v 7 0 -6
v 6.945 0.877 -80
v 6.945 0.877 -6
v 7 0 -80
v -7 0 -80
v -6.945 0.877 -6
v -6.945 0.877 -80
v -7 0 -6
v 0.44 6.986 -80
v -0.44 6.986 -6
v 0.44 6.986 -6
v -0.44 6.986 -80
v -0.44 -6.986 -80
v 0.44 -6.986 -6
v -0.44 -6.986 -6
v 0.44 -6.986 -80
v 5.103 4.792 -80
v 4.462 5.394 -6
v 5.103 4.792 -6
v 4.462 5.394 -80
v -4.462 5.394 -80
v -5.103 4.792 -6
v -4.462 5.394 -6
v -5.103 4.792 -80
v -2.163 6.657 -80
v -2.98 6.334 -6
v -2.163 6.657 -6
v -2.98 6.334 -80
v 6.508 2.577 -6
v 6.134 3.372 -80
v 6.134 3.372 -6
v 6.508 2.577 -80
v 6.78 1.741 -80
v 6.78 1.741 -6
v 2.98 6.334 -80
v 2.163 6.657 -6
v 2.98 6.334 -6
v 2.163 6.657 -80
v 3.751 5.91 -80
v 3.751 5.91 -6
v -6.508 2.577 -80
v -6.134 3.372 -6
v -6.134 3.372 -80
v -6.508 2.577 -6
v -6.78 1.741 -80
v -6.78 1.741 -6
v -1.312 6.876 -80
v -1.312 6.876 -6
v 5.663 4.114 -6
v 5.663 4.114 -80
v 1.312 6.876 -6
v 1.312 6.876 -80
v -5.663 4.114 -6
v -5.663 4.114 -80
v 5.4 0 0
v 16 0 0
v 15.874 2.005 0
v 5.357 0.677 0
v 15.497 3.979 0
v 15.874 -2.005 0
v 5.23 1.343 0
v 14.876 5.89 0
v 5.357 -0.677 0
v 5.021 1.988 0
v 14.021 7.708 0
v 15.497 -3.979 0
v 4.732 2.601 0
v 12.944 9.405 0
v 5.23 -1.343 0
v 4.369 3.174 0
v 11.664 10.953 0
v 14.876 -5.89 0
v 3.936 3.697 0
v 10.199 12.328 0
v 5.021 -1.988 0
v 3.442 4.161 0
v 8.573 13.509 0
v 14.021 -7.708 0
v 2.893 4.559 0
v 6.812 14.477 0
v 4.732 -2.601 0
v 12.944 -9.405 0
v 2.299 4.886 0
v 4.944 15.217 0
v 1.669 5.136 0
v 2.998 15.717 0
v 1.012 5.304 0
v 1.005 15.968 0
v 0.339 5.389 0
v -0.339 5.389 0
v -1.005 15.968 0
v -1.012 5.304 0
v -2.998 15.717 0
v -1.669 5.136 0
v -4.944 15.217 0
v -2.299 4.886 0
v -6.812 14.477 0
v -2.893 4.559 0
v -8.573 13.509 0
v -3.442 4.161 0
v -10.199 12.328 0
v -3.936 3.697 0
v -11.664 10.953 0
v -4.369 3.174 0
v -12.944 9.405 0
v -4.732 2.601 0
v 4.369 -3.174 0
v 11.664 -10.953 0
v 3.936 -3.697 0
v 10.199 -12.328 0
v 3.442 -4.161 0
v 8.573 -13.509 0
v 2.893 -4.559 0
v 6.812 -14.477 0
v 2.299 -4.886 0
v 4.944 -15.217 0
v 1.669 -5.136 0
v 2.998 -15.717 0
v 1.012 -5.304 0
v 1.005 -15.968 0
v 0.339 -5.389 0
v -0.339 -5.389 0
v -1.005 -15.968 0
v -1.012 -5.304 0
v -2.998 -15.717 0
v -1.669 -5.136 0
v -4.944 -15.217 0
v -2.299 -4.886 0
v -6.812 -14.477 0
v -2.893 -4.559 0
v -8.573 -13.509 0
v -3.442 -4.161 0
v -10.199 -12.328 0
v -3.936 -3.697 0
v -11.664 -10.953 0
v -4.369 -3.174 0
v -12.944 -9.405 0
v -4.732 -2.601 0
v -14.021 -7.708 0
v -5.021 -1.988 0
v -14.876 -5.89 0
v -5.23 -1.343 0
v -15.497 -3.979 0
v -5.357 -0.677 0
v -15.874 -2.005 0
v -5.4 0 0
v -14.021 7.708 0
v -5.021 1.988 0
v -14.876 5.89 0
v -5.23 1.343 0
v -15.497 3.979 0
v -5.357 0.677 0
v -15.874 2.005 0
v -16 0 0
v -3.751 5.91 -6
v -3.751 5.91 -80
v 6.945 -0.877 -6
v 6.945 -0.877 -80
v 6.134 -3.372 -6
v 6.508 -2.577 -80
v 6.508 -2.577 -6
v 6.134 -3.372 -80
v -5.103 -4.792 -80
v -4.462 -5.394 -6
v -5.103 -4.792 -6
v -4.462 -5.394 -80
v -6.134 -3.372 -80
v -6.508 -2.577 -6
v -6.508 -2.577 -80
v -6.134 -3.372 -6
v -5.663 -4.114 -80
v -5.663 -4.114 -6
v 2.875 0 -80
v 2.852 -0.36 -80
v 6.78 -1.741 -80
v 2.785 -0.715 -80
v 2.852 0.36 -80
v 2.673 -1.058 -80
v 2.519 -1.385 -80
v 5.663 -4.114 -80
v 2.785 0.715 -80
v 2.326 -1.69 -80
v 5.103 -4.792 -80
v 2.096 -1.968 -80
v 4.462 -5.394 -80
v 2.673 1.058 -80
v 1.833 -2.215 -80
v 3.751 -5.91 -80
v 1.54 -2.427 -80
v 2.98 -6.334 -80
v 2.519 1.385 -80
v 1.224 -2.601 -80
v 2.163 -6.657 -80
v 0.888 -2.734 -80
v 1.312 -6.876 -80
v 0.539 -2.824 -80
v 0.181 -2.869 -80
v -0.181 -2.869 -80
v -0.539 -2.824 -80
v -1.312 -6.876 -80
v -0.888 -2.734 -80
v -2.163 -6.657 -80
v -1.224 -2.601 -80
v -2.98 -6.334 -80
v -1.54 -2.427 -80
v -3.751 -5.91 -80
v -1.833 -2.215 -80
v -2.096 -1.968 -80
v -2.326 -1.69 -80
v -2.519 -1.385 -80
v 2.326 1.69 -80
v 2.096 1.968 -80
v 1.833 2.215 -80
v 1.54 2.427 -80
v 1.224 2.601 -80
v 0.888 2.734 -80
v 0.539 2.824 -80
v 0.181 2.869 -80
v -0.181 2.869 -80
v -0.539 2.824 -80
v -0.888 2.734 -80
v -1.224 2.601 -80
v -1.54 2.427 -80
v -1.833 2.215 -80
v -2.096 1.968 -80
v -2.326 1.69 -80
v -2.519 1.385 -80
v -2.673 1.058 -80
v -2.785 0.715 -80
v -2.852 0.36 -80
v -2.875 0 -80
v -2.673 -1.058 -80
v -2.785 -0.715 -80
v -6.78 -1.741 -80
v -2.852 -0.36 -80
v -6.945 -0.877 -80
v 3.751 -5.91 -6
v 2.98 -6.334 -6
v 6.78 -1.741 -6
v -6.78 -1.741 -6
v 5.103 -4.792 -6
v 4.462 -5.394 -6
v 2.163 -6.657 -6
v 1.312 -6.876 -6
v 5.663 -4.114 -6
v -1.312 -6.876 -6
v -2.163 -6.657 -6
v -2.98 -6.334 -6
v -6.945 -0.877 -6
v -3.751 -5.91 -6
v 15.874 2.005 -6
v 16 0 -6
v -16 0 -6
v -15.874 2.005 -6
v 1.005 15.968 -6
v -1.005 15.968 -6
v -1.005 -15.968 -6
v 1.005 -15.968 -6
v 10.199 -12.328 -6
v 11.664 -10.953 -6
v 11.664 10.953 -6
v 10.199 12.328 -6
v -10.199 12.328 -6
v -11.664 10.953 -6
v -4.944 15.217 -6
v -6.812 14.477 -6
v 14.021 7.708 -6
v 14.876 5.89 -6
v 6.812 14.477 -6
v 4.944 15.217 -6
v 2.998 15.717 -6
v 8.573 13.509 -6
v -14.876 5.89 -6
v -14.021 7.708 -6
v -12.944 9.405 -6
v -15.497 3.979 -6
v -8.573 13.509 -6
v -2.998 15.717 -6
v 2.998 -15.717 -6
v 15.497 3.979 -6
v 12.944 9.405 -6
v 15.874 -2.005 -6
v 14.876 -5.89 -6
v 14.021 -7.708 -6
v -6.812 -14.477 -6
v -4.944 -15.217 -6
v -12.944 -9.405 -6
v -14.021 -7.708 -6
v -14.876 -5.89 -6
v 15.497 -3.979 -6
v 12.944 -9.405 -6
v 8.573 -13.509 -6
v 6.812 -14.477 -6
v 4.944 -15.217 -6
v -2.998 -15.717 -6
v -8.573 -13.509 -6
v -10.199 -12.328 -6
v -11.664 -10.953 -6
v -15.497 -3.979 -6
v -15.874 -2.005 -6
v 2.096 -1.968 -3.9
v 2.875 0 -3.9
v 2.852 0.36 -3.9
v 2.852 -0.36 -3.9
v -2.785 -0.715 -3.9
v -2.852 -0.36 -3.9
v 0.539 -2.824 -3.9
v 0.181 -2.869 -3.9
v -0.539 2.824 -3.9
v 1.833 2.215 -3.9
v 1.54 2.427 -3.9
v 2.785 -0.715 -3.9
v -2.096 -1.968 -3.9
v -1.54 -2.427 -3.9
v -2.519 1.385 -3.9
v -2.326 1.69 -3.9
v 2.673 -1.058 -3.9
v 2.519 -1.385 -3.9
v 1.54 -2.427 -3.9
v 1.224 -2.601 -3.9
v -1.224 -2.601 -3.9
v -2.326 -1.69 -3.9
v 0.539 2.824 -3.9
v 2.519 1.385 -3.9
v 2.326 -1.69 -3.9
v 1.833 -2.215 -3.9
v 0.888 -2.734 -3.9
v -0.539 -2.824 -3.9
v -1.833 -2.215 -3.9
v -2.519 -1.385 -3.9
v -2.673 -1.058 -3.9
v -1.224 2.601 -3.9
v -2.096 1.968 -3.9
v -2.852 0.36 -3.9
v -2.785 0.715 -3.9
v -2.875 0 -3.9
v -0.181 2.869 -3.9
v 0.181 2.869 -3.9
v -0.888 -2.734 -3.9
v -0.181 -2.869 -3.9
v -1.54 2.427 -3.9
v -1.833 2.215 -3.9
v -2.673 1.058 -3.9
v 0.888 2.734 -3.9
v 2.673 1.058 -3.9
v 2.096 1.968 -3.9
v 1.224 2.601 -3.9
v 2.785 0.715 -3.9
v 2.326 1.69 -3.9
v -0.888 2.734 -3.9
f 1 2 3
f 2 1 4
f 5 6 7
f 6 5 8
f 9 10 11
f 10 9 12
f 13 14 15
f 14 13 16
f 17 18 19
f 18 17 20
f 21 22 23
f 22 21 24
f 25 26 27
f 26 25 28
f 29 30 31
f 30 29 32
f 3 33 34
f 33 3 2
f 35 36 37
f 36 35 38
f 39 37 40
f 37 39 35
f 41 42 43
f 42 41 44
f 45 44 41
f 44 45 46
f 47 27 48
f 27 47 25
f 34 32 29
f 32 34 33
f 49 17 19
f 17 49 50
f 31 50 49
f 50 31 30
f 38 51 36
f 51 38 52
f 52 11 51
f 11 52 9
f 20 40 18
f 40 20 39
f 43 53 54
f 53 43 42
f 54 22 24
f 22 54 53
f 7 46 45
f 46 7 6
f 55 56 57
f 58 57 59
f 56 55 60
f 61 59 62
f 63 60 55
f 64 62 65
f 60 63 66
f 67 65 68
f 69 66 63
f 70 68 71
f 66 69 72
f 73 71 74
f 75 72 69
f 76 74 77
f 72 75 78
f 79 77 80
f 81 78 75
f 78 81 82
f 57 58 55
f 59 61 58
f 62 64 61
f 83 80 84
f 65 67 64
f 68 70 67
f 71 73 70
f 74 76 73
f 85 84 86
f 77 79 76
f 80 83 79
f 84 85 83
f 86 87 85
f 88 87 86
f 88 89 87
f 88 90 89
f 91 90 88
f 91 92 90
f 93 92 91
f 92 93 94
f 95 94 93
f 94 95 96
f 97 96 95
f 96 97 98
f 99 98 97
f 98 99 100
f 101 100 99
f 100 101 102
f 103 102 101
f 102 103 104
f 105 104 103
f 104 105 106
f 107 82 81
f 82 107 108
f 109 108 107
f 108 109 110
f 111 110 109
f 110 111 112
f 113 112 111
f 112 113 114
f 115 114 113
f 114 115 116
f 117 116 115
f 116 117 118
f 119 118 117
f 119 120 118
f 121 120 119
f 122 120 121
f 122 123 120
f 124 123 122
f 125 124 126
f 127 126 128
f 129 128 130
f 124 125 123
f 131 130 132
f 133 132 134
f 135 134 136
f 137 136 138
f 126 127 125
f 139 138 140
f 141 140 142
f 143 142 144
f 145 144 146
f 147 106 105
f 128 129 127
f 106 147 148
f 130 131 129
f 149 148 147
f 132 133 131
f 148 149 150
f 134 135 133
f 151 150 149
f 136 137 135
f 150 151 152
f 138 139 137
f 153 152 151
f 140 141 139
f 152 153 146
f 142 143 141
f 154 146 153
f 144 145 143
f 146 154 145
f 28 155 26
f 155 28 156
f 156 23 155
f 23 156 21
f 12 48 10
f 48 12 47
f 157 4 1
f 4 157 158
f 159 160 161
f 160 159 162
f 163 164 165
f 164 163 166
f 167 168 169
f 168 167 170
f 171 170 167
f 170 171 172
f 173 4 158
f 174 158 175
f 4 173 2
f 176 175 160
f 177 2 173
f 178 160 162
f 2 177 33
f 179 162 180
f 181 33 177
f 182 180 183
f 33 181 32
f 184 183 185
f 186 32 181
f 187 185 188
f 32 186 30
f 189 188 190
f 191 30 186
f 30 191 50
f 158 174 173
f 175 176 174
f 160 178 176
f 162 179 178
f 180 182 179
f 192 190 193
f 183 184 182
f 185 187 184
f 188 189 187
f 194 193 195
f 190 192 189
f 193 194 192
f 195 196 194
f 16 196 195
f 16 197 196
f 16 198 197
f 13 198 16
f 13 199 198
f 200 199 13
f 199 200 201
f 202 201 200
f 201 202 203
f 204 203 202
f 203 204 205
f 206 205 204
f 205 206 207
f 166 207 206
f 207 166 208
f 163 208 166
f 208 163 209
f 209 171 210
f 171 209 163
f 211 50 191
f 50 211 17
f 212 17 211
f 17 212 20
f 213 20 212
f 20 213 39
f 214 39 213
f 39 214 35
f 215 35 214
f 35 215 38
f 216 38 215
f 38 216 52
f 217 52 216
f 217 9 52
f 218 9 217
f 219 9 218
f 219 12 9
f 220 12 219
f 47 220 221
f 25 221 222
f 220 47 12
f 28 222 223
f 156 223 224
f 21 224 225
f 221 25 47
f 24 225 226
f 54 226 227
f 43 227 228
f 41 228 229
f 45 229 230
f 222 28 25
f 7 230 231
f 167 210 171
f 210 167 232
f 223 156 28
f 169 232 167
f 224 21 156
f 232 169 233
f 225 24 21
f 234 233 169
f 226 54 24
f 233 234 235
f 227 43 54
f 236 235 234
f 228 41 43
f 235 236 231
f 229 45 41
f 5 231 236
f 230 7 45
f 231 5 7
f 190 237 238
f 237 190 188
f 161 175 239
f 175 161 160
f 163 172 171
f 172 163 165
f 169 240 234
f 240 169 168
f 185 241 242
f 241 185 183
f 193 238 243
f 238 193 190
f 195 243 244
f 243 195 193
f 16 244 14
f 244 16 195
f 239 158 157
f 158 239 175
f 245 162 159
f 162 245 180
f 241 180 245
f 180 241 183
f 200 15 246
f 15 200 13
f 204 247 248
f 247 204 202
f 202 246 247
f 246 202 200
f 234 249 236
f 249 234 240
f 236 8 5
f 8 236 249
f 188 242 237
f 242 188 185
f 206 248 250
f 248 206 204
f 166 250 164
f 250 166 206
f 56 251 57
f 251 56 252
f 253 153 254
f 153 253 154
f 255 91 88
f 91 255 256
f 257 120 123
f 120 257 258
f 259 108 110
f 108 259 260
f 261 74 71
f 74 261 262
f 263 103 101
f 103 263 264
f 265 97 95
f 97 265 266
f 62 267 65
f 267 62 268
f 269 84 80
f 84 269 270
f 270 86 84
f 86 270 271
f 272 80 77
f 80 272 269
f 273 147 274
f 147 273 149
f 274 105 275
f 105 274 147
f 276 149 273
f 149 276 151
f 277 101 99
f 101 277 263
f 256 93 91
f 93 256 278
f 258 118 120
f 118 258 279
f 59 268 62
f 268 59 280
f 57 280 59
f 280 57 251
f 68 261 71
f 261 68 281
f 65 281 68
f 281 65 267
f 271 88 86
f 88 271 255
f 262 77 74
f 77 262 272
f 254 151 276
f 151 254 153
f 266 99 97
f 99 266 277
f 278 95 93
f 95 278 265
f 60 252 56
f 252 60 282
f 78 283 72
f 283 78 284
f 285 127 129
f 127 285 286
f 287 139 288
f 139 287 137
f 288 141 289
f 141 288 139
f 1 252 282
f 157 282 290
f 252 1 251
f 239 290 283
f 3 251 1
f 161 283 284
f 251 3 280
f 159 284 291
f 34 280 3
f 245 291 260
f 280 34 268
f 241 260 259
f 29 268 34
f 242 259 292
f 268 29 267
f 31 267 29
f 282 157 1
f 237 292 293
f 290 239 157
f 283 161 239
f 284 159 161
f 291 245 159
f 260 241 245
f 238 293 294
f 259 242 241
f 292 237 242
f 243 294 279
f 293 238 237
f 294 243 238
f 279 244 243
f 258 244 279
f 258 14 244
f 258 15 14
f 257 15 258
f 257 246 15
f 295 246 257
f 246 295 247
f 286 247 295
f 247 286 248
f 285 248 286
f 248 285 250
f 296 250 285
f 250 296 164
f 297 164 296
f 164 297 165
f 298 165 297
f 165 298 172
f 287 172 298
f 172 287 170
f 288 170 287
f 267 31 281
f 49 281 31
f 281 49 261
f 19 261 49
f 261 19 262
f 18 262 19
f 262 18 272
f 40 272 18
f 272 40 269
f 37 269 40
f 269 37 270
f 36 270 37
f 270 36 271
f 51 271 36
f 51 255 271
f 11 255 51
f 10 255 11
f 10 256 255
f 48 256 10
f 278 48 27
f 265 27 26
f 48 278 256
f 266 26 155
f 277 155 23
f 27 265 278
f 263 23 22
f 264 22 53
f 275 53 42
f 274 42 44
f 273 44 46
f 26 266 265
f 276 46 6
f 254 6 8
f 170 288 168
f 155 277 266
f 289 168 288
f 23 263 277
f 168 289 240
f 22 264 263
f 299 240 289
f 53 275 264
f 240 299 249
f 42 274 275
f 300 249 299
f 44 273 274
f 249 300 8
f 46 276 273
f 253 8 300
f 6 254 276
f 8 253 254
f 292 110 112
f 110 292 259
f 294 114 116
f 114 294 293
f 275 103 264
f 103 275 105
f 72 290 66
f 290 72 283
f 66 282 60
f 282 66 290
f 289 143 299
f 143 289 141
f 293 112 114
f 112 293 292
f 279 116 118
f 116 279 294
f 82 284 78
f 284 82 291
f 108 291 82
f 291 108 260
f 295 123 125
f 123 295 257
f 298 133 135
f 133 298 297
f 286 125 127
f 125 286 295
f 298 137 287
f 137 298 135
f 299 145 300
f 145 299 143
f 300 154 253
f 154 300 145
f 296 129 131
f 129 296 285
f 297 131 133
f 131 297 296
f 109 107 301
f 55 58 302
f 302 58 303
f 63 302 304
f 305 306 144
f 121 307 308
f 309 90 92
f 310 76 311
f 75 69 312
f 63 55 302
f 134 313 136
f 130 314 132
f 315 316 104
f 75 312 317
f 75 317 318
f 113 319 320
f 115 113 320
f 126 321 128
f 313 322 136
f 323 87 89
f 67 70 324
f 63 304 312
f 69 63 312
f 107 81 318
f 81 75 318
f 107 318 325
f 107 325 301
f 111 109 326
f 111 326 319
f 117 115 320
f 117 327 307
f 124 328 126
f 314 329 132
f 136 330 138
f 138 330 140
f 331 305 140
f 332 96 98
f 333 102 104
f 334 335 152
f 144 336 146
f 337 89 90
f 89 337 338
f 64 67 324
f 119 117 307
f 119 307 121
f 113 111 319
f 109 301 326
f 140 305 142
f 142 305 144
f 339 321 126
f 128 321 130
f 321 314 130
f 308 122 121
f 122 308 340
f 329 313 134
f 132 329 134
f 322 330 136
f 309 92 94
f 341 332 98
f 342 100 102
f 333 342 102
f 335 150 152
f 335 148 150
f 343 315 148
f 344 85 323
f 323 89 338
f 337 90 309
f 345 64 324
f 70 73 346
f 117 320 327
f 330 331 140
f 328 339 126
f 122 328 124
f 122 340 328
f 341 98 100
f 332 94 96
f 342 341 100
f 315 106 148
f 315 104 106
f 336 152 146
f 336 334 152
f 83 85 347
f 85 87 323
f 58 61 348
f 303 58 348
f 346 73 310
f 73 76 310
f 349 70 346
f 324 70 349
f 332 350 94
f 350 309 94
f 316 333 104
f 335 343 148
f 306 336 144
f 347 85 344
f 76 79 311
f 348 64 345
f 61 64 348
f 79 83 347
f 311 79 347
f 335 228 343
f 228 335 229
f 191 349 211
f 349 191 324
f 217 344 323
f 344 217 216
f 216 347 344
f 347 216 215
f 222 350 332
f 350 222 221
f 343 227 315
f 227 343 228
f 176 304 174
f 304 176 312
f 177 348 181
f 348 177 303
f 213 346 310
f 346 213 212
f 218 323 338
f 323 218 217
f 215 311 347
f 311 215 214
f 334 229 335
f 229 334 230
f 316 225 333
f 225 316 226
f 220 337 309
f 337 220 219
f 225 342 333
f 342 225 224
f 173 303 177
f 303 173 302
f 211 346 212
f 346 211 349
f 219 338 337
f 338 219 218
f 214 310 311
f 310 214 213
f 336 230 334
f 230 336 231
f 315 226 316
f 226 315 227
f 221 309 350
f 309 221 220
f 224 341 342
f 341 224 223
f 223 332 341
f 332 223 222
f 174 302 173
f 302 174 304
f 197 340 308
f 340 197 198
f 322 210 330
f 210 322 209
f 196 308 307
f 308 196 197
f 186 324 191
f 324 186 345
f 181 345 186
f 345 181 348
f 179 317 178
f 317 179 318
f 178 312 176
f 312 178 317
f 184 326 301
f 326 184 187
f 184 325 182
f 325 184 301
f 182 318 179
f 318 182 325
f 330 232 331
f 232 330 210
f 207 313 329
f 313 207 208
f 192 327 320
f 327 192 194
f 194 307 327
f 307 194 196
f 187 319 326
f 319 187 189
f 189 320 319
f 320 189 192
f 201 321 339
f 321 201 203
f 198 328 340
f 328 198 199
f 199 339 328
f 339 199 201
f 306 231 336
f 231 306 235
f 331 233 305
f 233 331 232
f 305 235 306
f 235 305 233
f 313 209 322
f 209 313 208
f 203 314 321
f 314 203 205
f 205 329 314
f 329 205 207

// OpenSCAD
$fn = 50;


difference() {
	union() {
		translate(v = [0, 0, -80.0000000000]) {
			cylinder(h = 80, r = 7.0000000000);
		}
		translate(v = [0, 0, -6.0000000000]) {
			cylinder(h = 6, r = 16.0000000000);
		}
	}
	union() {
		translate(v = [0, 0, 0]) {
			rotate(a = [0, 0, 0]) {
				difference() {
					union() {
						#translate(v = [0, 0, -80.0000000000]) {
							cylinder(h = 80, r = 2.6000000000);
						}
						#translate(v = [0, 0, -3.9000000000]) {
							cylinder(h = 3.9000000000, r = 7.0000000000, r1 = 2.8750000000, r2 = 5.4000000000);
						}
						#translate(v = [0, 0, -80.0000000000]) {
							cylinder(h = 80, r = 2.8750000000);
						}
						#translate(v = [0, 0, -80.0000000000]) {
							cylinder(h = 80, r = 2.6000000000);
						}
					}
					union();
				}
			}
		}
	}
}
